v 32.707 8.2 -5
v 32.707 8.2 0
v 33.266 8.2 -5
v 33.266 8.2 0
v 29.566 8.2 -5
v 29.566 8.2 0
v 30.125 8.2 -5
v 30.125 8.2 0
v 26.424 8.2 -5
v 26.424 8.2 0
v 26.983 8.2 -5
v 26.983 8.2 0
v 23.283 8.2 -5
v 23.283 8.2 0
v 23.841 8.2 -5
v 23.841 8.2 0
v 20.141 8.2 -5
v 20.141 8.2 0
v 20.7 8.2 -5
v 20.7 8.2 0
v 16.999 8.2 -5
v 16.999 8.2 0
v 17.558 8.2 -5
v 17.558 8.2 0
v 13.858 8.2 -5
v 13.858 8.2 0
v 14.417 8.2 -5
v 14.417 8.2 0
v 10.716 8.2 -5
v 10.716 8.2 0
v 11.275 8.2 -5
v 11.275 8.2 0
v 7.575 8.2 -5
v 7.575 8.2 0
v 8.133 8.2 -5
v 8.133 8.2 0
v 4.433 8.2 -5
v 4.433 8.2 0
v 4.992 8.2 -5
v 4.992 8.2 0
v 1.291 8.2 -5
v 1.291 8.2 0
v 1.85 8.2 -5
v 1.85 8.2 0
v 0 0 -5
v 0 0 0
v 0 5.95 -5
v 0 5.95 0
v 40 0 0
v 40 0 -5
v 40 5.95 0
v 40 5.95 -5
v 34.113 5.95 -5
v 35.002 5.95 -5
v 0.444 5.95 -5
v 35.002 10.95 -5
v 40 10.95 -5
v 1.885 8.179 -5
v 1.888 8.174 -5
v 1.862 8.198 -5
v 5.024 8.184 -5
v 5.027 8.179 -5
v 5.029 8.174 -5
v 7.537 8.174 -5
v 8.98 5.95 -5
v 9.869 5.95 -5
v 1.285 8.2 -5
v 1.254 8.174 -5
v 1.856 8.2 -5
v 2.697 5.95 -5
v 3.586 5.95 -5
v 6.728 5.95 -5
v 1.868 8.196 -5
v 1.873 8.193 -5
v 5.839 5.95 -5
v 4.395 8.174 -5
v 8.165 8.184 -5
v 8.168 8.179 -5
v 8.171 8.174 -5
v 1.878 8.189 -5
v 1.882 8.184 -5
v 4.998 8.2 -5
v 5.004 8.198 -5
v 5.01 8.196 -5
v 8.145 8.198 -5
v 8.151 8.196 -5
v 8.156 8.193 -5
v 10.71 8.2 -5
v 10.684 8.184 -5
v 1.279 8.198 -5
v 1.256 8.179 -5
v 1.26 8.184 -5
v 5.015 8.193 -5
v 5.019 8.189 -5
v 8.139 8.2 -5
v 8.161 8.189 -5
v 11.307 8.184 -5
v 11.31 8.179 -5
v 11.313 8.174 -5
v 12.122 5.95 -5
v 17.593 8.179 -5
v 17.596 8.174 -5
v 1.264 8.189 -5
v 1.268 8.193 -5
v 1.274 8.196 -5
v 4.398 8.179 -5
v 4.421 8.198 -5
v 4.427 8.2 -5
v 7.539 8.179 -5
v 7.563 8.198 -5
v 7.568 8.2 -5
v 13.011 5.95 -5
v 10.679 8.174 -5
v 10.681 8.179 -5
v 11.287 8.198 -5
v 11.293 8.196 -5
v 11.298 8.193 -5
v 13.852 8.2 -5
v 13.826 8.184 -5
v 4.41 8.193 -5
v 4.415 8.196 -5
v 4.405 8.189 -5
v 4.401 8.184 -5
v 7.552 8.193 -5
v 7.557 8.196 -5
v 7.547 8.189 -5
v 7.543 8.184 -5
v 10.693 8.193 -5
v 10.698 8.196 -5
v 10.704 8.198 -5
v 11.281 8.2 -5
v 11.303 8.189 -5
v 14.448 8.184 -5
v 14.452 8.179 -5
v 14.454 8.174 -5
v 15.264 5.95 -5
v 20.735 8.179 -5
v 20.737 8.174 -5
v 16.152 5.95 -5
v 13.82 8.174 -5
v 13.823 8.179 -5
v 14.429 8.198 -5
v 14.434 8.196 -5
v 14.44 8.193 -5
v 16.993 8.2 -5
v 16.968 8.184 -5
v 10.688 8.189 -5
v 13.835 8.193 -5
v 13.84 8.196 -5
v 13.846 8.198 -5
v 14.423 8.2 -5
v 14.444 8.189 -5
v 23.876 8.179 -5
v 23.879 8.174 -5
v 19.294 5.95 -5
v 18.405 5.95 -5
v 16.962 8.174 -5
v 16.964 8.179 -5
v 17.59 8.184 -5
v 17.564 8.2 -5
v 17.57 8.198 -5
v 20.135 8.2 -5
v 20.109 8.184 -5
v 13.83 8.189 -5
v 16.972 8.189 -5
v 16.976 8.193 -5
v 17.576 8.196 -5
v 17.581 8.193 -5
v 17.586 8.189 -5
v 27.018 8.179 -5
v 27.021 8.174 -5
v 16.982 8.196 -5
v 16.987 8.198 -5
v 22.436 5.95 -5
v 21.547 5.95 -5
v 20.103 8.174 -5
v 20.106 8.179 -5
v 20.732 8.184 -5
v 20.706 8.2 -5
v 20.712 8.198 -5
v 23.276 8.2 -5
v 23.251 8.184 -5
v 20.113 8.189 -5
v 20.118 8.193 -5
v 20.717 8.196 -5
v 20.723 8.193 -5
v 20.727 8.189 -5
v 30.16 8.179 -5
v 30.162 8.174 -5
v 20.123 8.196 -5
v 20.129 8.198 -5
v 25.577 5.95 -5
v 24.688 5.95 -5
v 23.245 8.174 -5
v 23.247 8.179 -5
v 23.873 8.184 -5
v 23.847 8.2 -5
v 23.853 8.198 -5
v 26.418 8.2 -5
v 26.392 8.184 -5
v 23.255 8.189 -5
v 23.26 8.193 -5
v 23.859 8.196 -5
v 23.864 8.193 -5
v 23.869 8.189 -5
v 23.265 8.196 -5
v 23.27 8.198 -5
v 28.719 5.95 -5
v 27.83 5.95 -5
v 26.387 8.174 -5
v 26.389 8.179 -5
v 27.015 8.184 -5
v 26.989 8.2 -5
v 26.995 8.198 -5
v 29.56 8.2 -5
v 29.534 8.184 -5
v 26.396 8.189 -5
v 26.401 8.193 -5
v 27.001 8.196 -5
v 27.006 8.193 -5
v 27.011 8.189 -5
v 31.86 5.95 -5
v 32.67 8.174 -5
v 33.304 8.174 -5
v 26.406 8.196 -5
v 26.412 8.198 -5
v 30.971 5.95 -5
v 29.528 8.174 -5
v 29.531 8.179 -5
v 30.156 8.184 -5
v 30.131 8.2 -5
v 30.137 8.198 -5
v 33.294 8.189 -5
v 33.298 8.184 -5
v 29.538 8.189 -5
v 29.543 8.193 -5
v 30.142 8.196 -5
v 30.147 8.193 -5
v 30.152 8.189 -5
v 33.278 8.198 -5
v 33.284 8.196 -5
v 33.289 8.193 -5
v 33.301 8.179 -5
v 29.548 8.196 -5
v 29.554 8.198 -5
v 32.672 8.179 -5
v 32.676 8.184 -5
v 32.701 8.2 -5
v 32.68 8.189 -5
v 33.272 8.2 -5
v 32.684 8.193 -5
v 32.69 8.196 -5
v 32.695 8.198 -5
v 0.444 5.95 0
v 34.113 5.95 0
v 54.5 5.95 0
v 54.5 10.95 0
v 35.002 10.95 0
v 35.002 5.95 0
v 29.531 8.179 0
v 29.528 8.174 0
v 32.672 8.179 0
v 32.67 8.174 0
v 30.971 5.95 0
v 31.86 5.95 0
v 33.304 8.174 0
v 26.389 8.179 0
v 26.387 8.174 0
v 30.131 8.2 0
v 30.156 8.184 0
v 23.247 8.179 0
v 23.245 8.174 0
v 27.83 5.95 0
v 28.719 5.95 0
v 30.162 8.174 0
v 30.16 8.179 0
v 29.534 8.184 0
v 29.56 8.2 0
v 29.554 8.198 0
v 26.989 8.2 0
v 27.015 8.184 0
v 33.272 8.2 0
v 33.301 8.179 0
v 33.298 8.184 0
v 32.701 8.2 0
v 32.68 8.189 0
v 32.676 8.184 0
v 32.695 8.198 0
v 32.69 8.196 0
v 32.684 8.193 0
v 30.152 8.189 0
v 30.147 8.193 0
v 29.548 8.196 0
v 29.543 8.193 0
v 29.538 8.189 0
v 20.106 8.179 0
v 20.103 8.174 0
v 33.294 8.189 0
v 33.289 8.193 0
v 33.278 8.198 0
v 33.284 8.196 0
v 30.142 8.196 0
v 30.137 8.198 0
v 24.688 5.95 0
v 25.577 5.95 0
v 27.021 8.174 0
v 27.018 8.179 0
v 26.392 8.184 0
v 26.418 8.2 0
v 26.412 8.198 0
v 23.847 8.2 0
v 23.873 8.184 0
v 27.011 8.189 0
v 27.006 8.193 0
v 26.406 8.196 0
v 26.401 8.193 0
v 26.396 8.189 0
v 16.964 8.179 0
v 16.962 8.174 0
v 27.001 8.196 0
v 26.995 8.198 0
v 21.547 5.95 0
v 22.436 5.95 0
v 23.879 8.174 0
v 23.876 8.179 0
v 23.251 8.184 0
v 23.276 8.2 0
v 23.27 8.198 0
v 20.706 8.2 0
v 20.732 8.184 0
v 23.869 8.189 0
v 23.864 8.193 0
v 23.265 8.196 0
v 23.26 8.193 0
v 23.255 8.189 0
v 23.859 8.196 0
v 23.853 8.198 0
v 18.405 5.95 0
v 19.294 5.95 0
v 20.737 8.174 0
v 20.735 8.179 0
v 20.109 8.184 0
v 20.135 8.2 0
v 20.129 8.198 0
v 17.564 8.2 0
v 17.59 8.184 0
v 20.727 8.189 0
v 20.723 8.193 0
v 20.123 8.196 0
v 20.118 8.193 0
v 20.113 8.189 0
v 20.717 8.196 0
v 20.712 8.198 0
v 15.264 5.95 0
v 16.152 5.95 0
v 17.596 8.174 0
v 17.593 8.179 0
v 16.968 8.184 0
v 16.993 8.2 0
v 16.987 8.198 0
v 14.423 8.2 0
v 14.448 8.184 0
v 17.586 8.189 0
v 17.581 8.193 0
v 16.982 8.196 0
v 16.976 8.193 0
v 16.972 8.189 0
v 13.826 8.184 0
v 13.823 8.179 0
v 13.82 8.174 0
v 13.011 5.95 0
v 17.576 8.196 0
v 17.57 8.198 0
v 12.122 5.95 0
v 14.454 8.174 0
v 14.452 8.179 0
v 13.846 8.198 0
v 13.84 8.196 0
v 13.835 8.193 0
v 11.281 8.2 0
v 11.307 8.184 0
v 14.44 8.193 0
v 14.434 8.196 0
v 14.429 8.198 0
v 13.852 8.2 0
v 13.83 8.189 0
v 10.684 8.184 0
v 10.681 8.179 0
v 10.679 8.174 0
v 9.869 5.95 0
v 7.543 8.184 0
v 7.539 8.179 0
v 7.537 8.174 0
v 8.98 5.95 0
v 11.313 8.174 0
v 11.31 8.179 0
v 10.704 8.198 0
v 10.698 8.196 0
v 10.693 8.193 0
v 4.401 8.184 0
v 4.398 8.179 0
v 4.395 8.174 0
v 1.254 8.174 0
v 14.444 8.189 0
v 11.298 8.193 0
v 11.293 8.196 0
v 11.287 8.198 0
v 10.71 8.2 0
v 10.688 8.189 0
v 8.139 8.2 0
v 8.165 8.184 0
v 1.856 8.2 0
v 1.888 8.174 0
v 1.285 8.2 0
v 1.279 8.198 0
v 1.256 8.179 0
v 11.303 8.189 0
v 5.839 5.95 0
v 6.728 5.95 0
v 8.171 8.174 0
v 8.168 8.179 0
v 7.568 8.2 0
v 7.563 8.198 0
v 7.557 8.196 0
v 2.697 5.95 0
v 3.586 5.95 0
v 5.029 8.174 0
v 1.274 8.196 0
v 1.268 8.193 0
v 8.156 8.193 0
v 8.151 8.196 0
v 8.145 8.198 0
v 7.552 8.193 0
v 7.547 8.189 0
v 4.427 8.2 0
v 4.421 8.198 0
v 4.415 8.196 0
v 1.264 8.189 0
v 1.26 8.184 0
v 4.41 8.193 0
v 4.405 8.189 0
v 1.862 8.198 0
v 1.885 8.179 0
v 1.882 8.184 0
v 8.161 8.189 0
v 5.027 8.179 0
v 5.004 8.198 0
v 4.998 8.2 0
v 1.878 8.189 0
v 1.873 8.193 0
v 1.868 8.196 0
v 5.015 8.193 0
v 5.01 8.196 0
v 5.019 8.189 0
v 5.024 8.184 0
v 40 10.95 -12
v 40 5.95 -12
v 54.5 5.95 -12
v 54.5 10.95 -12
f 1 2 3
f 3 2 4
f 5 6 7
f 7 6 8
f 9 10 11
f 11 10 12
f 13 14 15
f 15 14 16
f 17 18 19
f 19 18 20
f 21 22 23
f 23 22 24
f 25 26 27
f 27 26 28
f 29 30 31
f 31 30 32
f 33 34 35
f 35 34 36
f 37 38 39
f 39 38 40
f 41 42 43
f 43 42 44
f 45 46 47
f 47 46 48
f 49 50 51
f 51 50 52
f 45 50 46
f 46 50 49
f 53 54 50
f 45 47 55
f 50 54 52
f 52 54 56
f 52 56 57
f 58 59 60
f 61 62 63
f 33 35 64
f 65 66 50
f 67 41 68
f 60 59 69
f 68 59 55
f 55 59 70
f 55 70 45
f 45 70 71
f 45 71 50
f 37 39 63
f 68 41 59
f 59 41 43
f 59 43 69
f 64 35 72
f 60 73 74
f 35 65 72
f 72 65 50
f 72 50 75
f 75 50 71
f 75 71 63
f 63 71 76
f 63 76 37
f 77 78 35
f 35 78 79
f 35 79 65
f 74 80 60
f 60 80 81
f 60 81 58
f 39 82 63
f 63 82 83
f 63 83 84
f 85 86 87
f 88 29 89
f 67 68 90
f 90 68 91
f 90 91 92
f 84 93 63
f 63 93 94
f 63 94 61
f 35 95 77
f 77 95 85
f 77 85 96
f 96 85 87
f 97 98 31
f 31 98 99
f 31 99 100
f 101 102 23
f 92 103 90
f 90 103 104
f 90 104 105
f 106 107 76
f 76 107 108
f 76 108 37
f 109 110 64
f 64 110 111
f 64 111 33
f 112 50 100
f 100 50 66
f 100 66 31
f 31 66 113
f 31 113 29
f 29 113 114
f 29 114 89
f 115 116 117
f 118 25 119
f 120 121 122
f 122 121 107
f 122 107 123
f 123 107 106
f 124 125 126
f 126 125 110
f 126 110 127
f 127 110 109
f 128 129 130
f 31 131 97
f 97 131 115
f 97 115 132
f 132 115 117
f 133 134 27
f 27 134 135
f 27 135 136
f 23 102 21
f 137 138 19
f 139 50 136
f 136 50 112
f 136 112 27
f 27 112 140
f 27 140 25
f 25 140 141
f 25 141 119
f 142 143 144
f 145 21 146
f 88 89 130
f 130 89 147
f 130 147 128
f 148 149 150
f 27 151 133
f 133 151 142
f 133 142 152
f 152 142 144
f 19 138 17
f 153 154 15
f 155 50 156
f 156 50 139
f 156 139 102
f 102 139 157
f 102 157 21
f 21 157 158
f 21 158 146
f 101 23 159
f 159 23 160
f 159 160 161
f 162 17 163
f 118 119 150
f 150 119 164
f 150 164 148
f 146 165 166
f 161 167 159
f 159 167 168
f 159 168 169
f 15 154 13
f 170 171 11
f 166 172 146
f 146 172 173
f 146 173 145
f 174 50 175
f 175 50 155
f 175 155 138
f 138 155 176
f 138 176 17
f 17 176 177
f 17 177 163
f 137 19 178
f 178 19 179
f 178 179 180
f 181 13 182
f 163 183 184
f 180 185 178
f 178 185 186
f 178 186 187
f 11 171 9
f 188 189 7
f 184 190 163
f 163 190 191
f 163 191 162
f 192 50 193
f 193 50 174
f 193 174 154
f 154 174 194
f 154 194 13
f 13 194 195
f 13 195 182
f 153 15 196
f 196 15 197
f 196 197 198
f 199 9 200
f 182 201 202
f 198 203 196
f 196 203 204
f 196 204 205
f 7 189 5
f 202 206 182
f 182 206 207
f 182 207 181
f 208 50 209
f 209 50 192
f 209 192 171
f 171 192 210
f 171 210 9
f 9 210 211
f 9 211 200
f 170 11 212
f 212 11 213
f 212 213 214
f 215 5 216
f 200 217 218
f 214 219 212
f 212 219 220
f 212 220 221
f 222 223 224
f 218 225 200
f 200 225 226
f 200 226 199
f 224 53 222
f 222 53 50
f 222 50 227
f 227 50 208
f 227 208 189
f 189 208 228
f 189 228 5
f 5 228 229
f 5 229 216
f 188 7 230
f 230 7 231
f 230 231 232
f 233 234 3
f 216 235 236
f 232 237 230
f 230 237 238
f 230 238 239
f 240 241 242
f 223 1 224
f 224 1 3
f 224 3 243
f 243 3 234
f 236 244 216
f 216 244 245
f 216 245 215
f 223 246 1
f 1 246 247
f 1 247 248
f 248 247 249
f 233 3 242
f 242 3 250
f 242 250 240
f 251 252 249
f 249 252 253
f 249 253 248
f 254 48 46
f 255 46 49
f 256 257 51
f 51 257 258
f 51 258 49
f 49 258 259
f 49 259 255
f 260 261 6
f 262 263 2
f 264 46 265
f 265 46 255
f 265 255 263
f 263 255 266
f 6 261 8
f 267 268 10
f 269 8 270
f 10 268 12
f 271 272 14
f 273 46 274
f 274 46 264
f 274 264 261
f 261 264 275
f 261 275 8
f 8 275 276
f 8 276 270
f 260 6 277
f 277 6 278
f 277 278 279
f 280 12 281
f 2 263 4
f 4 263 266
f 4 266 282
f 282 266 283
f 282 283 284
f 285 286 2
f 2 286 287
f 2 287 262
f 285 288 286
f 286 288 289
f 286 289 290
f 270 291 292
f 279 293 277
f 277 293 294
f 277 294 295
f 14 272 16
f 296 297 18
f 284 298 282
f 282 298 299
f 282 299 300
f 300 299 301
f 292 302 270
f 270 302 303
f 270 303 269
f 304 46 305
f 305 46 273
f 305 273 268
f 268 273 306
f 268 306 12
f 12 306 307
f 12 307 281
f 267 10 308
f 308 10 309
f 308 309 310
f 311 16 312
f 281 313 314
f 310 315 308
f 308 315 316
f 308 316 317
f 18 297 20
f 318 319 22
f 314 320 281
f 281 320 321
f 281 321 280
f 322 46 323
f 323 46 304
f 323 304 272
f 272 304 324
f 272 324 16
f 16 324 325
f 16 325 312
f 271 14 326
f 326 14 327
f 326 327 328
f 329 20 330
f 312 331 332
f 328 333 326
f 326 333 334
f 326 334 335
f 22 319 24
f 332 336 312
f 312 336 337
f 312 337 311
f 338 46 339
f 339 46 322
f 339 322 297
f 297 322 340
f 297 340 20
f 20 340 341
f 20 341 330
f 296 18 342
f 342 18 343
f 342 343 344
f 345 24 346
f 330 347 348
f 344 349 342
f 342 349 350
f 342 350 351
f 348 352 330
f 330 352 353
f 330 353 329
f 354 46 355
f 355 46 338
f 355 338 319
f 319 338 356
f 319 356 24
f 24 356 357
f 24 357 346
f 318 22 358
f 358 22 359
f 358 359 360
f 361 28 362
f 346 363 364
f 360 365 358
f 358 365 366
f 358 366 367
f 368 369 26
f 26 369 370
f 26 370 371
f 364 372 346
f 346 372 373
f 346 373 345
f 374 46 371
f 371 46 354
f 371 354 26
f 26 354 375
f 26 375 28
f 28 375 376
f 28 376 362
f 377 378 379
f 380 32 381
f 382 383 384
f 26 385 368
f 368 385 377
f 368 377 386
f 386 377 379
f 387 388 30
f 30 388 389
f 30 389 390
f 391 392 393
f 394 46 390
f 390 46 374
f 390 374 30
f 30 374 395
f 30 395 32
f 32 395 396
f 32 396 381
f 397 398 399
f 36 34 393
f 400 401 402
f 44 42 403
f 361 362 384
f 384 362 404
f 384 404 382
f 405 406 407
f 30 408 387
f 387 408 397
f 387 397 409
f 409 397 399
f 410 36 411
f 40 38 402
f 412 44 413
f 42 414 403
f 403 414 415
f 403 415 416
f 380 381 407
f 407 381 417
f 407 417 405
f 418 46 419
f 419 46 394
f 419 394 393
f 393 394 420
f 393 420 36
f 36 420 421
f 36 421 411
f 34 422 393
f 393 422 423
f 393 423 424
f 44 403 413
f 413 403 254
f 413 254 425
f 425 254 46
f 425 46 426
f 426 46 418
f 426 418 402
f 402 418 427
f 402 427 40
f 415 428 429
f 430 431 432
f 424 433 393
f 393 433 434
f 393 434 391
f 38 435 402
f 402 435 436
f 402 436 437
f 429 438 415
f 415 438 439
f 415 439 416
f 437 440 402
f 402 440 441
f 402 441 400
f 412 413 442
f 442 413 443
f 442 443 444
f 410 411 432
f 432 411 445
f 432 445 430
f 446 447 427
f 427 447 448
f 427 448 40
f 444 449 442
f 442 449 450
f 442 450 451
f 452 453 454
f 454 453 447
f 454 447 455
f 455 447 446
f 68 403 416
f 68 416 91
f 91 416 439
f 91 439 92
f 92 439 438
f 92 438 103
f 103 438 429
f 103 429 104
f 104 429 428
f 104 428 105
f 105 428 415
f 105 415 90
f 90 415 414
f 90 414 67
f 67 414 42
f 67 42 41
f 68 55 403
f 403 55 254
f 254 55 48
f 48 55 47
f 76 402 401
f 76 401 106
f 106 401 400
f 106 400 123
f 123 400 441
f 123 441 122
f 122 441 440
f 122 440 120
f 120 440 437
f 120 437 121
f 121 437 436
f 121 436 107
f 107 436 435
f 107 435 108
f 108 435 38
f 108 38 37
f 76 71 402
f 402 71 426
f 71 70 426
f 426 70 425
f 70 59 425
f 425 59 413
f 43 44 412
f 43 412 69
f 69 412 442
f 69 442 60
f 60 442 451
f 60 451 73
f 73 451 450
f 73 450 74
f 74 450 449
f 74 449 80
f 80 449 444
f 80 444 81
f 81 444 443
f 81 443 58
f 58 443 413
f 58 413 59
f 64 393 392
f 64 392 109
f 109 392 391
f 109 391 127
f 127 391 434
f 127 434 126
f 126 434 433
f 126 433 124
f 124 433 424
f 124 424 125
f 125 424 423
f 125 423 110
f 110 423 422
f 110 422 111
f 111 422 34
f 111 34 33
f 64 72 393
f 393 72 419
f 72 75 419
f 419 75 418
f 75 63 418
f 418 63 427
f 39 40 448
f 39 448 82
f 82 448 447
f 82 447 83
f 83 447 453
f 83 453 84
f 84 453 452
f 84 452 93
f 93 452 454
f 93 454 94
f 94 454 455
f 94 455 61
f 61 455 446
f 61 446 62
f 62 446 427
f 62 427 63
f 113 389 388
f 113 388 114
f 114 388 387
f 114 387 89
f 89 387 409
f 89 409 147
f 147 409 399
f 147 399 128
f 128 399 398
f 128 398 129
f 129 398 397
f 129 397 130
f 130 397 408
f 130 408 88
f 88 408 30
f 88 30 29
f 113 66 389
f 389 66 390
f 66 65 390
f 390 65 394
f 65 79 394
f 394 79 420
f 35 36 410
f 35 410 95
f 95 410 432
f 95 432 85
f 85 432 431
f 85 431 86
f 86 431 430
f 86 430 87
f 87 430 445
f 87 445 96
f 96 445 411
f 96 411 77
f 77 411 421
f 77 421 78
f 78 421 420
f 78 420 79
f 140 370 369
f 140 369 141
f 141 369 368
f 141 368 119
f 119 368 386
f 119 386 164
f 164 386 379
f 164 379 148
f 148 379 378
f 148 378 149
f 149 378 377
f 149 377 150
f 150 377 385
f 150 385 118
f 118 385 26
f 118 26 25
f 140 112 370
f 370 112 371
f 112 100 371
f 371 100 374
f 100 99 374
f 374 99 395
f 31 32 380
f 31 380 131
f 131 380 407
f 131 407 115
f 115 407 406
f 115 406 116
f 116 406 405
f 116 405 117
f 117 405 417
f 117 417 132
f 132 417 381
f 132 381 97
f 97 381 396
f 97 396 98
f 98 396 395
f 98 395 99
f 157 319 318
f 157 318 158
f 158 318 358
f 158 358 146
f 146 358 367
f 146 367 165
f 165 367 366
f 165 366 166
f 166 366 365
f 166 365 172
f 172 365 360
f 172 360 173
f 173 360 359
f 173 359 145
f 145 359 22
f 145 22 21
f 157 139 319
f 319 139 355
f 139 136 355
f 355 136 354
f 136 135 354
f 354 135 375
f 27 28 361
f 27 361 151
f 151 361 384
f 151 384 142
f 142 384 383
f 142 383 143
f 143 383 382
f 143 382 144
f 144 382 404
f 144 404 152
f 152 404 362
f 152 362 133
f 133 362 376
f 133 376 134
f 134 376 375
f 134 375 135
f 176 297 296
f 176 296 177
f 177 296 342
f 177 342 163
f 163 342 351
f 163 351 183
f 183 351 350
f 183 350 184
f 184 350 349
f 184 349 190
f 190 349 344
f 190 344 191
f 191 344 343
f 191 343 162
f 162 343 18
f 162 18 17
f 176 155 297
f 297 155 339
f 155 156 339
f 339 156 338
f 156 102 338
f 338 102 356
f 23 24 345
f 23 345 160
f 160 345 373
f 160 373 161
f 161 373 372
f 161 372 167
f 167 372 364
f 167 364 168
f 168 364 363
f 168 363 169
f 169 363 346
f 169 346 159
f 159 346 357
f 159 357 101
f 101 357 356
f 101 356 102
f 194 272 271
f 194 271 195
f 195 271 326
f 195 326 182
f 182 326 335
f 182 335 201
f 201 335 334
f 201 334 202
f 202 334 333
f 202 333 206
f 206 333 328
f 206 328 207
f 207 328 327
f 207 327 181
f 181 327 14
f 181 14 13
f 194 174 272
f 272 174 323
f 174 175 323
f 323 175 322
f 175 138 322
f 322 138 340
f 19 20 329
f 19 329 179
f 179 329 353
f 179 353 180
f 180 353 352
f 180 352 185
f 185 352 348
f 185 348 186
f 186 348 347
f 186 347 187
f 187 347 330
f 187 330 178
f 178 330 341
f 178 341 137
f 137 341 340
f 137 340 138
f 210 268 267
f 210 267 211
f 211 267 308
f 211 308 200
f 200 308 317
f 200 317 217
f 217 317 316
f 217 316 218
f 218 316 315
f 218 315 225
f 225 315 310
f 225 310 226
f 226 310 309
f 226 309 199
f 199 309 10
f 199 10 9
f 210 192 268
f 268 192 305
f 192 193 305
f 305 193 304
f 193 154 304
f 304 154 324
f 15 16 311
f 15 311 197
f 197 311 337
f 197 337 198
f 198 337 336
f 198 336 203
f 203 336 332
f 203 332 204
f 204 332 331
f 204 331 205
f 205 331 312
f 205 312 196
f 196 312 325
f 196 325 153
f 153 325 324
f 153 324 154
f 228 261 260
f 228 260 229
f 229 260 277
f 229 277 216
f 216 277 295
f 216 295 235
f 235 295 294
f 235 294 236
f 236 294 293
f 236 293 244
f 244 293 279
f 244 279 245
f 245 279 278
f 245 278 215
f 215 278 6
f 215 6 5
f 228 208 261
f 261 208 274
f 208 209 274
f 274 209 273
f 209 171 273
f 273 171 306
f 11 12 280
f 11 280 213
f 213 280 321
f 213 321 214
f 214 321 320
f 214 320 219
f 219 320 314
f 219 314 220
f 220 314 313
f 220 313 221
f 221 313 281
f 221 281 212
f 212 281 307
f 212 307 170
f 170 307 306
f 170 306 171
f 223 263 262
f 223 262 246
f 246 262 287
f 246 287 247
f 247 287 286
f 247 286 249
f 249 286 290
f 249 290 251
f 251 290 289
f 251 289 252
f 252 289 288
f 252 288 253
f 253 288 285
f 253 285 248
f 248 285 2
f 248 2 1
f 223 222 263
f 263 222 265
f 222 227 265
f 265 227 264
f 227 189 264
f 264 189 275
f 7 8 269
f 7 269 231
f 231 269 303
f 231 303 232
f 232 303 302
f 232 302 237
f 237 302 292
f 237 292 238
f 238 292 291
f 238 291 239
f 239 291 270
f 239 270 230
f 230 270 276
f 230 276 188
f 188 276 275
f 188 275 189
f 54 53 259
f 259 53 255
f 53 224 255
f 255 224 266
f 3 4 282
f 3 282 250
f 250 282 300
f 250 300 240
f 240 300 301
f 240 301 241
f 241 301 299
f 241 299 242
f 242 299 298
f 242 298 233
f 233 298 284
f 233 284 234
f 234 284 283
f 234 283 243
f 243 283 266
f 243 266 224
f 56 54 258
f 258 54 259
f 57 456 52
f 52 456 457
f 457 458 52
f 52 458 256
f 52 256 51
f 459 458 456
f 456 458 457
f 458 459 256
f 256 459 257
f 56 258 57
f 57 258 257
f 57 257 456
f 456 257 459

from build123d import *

# Parameters (mm, degrees)
BLANKSKE_W          = 40
BLANKSKE_H          = 8.2
BLANK_DEPTH         = 5
TOOTHCUTILL_DEPTH   = 42.136844799
TOOTHCUTSIM_DEPTH   = 42.136844799
TEETHCUTS_COUNT     = 13
TEETHCUTS_PITCH     = 3.14159265
SKETCH1_W           = 4.99804548
SKETCH1_H           = 2.25
BOSS_EXTRUDE1_DEPTH = 5
SKETCH4_W           = 12
SKETCH4_H           = 2.25
BOSS_EXTRUDE4_DEPTH = 14.5
BOSS_EXTRUDE5_DEPTH = 2.75


with BuildPart() as part:
    # BlankSke → Blank (new body)
    with BuildSketch(Plane.XY):
        with Locations((20, 4.1)):
            Rectangle(BLANKSKE_W, BLANKSKE_H)
    extrude(amount=-BLANK_DEPTH)

    # TooCutSkeIll → ToothCutIll (cut, through all)
    with BuildSketch(Plane.XY):
        with BuildLine():
            Line((-1.253788993, 8.173680806), (-0.504546125, 6.115152944))
            ThreePointArc((-0.504546125, 6.115152944), (-0.412650963, 5.995392837), (-0.268683278, 5.95))
            Line((-0.268683278, 5.95), (0.268683278, 5.95))
            ThreePointArc((0.268683278, 5.95), (0.412650963, 5.995392837), (0.504546125, 6.115152944))
            Line((0.504546125, 6.115152944), (1.253788993, 8.173680806))
            ThreePointArc((1.253788993, 8.173680806), (1.268433641, 8.192766082), (1.291376698, 8.2))
            Line((1.291376698, 8.2), (1.291376698, 8.2254))
            Line((1.291376698, 8.2254), (-1.291376698, 8.2254))
            Line((-1.291376698, 8.2254), (-1.291376698, 8.2))
            ThreePointArc((-1.291376698, 8.2), (-1.268433641, 8.192766082), (-1.253788993, 8.173680806))
        make_face()
    toothcutill = extrude(amount=-TOOTHCUTILL_DEPTH, mode=Mode.SUBTRACT)

    # TooCutSkeSim → ToothCutSim (cut, through all)
    with BuildSketch(Plane.XY):
        Polygon((0.44443537, 5.95), (-0.44443537, 5.95), (-1.272613241, 8.2254), (1.272613241, 8.2254), align=None)
    toothcutsim = extrude(amount=-TOOTHCUTSIM_DEPTH, mode=Mode.SUBTRACT)

    # TeethCuts: ToothCutIll, ToothCutSim ×13
    with Locations(*[(i * TEETHCUTS_PITCH, 0, 0) for i in range(1, TEETHCUTS_COUNT)]):
        add(toothcutill, mode=Mode.SUBTRACT)
        add(toothcutsim, mode=Mode.SUBTRACT)

    # Sketch1 → Boss-Extrude1 (add)
    with BuildSketch(Plane.XY):
        with Locations((37.50097726, 7.075)):
            Rectangle(SKETCH1_W, SKETCH1_H)
    extrude(amount=-BOSS_EXTRUDE1_DEPTH)

    # Sketch4 → Boss-Extrude4 (add)
    with BuildSketch(Plane(origin=(40, 0, 0), x_dir=(0, 0, -1), z_dir=(1, 0, 0))):
        with Locations((6, 7.075)):
            Rectangle(SKETCH4_W, SKETCH4_H)
    extrude(amount=BOSS_EXTRUDE4_DEPTH)

    # Sketch6 → Boss-Extrude5 (add)
    with BuildSketch(Plane(origin=(0, 8.2, 0), x_dir=(1, 0, 0), z_dir=(0, 1, 0))):
        Polygon((35.00195452, 5), (35.00195452, 0), (54.5, 0), (54.5, 12), (40, 12), (40, 5), align=None)
    extrude(amount=BOSS_EXTRUDE5_DEPTH)


solid = part.part
